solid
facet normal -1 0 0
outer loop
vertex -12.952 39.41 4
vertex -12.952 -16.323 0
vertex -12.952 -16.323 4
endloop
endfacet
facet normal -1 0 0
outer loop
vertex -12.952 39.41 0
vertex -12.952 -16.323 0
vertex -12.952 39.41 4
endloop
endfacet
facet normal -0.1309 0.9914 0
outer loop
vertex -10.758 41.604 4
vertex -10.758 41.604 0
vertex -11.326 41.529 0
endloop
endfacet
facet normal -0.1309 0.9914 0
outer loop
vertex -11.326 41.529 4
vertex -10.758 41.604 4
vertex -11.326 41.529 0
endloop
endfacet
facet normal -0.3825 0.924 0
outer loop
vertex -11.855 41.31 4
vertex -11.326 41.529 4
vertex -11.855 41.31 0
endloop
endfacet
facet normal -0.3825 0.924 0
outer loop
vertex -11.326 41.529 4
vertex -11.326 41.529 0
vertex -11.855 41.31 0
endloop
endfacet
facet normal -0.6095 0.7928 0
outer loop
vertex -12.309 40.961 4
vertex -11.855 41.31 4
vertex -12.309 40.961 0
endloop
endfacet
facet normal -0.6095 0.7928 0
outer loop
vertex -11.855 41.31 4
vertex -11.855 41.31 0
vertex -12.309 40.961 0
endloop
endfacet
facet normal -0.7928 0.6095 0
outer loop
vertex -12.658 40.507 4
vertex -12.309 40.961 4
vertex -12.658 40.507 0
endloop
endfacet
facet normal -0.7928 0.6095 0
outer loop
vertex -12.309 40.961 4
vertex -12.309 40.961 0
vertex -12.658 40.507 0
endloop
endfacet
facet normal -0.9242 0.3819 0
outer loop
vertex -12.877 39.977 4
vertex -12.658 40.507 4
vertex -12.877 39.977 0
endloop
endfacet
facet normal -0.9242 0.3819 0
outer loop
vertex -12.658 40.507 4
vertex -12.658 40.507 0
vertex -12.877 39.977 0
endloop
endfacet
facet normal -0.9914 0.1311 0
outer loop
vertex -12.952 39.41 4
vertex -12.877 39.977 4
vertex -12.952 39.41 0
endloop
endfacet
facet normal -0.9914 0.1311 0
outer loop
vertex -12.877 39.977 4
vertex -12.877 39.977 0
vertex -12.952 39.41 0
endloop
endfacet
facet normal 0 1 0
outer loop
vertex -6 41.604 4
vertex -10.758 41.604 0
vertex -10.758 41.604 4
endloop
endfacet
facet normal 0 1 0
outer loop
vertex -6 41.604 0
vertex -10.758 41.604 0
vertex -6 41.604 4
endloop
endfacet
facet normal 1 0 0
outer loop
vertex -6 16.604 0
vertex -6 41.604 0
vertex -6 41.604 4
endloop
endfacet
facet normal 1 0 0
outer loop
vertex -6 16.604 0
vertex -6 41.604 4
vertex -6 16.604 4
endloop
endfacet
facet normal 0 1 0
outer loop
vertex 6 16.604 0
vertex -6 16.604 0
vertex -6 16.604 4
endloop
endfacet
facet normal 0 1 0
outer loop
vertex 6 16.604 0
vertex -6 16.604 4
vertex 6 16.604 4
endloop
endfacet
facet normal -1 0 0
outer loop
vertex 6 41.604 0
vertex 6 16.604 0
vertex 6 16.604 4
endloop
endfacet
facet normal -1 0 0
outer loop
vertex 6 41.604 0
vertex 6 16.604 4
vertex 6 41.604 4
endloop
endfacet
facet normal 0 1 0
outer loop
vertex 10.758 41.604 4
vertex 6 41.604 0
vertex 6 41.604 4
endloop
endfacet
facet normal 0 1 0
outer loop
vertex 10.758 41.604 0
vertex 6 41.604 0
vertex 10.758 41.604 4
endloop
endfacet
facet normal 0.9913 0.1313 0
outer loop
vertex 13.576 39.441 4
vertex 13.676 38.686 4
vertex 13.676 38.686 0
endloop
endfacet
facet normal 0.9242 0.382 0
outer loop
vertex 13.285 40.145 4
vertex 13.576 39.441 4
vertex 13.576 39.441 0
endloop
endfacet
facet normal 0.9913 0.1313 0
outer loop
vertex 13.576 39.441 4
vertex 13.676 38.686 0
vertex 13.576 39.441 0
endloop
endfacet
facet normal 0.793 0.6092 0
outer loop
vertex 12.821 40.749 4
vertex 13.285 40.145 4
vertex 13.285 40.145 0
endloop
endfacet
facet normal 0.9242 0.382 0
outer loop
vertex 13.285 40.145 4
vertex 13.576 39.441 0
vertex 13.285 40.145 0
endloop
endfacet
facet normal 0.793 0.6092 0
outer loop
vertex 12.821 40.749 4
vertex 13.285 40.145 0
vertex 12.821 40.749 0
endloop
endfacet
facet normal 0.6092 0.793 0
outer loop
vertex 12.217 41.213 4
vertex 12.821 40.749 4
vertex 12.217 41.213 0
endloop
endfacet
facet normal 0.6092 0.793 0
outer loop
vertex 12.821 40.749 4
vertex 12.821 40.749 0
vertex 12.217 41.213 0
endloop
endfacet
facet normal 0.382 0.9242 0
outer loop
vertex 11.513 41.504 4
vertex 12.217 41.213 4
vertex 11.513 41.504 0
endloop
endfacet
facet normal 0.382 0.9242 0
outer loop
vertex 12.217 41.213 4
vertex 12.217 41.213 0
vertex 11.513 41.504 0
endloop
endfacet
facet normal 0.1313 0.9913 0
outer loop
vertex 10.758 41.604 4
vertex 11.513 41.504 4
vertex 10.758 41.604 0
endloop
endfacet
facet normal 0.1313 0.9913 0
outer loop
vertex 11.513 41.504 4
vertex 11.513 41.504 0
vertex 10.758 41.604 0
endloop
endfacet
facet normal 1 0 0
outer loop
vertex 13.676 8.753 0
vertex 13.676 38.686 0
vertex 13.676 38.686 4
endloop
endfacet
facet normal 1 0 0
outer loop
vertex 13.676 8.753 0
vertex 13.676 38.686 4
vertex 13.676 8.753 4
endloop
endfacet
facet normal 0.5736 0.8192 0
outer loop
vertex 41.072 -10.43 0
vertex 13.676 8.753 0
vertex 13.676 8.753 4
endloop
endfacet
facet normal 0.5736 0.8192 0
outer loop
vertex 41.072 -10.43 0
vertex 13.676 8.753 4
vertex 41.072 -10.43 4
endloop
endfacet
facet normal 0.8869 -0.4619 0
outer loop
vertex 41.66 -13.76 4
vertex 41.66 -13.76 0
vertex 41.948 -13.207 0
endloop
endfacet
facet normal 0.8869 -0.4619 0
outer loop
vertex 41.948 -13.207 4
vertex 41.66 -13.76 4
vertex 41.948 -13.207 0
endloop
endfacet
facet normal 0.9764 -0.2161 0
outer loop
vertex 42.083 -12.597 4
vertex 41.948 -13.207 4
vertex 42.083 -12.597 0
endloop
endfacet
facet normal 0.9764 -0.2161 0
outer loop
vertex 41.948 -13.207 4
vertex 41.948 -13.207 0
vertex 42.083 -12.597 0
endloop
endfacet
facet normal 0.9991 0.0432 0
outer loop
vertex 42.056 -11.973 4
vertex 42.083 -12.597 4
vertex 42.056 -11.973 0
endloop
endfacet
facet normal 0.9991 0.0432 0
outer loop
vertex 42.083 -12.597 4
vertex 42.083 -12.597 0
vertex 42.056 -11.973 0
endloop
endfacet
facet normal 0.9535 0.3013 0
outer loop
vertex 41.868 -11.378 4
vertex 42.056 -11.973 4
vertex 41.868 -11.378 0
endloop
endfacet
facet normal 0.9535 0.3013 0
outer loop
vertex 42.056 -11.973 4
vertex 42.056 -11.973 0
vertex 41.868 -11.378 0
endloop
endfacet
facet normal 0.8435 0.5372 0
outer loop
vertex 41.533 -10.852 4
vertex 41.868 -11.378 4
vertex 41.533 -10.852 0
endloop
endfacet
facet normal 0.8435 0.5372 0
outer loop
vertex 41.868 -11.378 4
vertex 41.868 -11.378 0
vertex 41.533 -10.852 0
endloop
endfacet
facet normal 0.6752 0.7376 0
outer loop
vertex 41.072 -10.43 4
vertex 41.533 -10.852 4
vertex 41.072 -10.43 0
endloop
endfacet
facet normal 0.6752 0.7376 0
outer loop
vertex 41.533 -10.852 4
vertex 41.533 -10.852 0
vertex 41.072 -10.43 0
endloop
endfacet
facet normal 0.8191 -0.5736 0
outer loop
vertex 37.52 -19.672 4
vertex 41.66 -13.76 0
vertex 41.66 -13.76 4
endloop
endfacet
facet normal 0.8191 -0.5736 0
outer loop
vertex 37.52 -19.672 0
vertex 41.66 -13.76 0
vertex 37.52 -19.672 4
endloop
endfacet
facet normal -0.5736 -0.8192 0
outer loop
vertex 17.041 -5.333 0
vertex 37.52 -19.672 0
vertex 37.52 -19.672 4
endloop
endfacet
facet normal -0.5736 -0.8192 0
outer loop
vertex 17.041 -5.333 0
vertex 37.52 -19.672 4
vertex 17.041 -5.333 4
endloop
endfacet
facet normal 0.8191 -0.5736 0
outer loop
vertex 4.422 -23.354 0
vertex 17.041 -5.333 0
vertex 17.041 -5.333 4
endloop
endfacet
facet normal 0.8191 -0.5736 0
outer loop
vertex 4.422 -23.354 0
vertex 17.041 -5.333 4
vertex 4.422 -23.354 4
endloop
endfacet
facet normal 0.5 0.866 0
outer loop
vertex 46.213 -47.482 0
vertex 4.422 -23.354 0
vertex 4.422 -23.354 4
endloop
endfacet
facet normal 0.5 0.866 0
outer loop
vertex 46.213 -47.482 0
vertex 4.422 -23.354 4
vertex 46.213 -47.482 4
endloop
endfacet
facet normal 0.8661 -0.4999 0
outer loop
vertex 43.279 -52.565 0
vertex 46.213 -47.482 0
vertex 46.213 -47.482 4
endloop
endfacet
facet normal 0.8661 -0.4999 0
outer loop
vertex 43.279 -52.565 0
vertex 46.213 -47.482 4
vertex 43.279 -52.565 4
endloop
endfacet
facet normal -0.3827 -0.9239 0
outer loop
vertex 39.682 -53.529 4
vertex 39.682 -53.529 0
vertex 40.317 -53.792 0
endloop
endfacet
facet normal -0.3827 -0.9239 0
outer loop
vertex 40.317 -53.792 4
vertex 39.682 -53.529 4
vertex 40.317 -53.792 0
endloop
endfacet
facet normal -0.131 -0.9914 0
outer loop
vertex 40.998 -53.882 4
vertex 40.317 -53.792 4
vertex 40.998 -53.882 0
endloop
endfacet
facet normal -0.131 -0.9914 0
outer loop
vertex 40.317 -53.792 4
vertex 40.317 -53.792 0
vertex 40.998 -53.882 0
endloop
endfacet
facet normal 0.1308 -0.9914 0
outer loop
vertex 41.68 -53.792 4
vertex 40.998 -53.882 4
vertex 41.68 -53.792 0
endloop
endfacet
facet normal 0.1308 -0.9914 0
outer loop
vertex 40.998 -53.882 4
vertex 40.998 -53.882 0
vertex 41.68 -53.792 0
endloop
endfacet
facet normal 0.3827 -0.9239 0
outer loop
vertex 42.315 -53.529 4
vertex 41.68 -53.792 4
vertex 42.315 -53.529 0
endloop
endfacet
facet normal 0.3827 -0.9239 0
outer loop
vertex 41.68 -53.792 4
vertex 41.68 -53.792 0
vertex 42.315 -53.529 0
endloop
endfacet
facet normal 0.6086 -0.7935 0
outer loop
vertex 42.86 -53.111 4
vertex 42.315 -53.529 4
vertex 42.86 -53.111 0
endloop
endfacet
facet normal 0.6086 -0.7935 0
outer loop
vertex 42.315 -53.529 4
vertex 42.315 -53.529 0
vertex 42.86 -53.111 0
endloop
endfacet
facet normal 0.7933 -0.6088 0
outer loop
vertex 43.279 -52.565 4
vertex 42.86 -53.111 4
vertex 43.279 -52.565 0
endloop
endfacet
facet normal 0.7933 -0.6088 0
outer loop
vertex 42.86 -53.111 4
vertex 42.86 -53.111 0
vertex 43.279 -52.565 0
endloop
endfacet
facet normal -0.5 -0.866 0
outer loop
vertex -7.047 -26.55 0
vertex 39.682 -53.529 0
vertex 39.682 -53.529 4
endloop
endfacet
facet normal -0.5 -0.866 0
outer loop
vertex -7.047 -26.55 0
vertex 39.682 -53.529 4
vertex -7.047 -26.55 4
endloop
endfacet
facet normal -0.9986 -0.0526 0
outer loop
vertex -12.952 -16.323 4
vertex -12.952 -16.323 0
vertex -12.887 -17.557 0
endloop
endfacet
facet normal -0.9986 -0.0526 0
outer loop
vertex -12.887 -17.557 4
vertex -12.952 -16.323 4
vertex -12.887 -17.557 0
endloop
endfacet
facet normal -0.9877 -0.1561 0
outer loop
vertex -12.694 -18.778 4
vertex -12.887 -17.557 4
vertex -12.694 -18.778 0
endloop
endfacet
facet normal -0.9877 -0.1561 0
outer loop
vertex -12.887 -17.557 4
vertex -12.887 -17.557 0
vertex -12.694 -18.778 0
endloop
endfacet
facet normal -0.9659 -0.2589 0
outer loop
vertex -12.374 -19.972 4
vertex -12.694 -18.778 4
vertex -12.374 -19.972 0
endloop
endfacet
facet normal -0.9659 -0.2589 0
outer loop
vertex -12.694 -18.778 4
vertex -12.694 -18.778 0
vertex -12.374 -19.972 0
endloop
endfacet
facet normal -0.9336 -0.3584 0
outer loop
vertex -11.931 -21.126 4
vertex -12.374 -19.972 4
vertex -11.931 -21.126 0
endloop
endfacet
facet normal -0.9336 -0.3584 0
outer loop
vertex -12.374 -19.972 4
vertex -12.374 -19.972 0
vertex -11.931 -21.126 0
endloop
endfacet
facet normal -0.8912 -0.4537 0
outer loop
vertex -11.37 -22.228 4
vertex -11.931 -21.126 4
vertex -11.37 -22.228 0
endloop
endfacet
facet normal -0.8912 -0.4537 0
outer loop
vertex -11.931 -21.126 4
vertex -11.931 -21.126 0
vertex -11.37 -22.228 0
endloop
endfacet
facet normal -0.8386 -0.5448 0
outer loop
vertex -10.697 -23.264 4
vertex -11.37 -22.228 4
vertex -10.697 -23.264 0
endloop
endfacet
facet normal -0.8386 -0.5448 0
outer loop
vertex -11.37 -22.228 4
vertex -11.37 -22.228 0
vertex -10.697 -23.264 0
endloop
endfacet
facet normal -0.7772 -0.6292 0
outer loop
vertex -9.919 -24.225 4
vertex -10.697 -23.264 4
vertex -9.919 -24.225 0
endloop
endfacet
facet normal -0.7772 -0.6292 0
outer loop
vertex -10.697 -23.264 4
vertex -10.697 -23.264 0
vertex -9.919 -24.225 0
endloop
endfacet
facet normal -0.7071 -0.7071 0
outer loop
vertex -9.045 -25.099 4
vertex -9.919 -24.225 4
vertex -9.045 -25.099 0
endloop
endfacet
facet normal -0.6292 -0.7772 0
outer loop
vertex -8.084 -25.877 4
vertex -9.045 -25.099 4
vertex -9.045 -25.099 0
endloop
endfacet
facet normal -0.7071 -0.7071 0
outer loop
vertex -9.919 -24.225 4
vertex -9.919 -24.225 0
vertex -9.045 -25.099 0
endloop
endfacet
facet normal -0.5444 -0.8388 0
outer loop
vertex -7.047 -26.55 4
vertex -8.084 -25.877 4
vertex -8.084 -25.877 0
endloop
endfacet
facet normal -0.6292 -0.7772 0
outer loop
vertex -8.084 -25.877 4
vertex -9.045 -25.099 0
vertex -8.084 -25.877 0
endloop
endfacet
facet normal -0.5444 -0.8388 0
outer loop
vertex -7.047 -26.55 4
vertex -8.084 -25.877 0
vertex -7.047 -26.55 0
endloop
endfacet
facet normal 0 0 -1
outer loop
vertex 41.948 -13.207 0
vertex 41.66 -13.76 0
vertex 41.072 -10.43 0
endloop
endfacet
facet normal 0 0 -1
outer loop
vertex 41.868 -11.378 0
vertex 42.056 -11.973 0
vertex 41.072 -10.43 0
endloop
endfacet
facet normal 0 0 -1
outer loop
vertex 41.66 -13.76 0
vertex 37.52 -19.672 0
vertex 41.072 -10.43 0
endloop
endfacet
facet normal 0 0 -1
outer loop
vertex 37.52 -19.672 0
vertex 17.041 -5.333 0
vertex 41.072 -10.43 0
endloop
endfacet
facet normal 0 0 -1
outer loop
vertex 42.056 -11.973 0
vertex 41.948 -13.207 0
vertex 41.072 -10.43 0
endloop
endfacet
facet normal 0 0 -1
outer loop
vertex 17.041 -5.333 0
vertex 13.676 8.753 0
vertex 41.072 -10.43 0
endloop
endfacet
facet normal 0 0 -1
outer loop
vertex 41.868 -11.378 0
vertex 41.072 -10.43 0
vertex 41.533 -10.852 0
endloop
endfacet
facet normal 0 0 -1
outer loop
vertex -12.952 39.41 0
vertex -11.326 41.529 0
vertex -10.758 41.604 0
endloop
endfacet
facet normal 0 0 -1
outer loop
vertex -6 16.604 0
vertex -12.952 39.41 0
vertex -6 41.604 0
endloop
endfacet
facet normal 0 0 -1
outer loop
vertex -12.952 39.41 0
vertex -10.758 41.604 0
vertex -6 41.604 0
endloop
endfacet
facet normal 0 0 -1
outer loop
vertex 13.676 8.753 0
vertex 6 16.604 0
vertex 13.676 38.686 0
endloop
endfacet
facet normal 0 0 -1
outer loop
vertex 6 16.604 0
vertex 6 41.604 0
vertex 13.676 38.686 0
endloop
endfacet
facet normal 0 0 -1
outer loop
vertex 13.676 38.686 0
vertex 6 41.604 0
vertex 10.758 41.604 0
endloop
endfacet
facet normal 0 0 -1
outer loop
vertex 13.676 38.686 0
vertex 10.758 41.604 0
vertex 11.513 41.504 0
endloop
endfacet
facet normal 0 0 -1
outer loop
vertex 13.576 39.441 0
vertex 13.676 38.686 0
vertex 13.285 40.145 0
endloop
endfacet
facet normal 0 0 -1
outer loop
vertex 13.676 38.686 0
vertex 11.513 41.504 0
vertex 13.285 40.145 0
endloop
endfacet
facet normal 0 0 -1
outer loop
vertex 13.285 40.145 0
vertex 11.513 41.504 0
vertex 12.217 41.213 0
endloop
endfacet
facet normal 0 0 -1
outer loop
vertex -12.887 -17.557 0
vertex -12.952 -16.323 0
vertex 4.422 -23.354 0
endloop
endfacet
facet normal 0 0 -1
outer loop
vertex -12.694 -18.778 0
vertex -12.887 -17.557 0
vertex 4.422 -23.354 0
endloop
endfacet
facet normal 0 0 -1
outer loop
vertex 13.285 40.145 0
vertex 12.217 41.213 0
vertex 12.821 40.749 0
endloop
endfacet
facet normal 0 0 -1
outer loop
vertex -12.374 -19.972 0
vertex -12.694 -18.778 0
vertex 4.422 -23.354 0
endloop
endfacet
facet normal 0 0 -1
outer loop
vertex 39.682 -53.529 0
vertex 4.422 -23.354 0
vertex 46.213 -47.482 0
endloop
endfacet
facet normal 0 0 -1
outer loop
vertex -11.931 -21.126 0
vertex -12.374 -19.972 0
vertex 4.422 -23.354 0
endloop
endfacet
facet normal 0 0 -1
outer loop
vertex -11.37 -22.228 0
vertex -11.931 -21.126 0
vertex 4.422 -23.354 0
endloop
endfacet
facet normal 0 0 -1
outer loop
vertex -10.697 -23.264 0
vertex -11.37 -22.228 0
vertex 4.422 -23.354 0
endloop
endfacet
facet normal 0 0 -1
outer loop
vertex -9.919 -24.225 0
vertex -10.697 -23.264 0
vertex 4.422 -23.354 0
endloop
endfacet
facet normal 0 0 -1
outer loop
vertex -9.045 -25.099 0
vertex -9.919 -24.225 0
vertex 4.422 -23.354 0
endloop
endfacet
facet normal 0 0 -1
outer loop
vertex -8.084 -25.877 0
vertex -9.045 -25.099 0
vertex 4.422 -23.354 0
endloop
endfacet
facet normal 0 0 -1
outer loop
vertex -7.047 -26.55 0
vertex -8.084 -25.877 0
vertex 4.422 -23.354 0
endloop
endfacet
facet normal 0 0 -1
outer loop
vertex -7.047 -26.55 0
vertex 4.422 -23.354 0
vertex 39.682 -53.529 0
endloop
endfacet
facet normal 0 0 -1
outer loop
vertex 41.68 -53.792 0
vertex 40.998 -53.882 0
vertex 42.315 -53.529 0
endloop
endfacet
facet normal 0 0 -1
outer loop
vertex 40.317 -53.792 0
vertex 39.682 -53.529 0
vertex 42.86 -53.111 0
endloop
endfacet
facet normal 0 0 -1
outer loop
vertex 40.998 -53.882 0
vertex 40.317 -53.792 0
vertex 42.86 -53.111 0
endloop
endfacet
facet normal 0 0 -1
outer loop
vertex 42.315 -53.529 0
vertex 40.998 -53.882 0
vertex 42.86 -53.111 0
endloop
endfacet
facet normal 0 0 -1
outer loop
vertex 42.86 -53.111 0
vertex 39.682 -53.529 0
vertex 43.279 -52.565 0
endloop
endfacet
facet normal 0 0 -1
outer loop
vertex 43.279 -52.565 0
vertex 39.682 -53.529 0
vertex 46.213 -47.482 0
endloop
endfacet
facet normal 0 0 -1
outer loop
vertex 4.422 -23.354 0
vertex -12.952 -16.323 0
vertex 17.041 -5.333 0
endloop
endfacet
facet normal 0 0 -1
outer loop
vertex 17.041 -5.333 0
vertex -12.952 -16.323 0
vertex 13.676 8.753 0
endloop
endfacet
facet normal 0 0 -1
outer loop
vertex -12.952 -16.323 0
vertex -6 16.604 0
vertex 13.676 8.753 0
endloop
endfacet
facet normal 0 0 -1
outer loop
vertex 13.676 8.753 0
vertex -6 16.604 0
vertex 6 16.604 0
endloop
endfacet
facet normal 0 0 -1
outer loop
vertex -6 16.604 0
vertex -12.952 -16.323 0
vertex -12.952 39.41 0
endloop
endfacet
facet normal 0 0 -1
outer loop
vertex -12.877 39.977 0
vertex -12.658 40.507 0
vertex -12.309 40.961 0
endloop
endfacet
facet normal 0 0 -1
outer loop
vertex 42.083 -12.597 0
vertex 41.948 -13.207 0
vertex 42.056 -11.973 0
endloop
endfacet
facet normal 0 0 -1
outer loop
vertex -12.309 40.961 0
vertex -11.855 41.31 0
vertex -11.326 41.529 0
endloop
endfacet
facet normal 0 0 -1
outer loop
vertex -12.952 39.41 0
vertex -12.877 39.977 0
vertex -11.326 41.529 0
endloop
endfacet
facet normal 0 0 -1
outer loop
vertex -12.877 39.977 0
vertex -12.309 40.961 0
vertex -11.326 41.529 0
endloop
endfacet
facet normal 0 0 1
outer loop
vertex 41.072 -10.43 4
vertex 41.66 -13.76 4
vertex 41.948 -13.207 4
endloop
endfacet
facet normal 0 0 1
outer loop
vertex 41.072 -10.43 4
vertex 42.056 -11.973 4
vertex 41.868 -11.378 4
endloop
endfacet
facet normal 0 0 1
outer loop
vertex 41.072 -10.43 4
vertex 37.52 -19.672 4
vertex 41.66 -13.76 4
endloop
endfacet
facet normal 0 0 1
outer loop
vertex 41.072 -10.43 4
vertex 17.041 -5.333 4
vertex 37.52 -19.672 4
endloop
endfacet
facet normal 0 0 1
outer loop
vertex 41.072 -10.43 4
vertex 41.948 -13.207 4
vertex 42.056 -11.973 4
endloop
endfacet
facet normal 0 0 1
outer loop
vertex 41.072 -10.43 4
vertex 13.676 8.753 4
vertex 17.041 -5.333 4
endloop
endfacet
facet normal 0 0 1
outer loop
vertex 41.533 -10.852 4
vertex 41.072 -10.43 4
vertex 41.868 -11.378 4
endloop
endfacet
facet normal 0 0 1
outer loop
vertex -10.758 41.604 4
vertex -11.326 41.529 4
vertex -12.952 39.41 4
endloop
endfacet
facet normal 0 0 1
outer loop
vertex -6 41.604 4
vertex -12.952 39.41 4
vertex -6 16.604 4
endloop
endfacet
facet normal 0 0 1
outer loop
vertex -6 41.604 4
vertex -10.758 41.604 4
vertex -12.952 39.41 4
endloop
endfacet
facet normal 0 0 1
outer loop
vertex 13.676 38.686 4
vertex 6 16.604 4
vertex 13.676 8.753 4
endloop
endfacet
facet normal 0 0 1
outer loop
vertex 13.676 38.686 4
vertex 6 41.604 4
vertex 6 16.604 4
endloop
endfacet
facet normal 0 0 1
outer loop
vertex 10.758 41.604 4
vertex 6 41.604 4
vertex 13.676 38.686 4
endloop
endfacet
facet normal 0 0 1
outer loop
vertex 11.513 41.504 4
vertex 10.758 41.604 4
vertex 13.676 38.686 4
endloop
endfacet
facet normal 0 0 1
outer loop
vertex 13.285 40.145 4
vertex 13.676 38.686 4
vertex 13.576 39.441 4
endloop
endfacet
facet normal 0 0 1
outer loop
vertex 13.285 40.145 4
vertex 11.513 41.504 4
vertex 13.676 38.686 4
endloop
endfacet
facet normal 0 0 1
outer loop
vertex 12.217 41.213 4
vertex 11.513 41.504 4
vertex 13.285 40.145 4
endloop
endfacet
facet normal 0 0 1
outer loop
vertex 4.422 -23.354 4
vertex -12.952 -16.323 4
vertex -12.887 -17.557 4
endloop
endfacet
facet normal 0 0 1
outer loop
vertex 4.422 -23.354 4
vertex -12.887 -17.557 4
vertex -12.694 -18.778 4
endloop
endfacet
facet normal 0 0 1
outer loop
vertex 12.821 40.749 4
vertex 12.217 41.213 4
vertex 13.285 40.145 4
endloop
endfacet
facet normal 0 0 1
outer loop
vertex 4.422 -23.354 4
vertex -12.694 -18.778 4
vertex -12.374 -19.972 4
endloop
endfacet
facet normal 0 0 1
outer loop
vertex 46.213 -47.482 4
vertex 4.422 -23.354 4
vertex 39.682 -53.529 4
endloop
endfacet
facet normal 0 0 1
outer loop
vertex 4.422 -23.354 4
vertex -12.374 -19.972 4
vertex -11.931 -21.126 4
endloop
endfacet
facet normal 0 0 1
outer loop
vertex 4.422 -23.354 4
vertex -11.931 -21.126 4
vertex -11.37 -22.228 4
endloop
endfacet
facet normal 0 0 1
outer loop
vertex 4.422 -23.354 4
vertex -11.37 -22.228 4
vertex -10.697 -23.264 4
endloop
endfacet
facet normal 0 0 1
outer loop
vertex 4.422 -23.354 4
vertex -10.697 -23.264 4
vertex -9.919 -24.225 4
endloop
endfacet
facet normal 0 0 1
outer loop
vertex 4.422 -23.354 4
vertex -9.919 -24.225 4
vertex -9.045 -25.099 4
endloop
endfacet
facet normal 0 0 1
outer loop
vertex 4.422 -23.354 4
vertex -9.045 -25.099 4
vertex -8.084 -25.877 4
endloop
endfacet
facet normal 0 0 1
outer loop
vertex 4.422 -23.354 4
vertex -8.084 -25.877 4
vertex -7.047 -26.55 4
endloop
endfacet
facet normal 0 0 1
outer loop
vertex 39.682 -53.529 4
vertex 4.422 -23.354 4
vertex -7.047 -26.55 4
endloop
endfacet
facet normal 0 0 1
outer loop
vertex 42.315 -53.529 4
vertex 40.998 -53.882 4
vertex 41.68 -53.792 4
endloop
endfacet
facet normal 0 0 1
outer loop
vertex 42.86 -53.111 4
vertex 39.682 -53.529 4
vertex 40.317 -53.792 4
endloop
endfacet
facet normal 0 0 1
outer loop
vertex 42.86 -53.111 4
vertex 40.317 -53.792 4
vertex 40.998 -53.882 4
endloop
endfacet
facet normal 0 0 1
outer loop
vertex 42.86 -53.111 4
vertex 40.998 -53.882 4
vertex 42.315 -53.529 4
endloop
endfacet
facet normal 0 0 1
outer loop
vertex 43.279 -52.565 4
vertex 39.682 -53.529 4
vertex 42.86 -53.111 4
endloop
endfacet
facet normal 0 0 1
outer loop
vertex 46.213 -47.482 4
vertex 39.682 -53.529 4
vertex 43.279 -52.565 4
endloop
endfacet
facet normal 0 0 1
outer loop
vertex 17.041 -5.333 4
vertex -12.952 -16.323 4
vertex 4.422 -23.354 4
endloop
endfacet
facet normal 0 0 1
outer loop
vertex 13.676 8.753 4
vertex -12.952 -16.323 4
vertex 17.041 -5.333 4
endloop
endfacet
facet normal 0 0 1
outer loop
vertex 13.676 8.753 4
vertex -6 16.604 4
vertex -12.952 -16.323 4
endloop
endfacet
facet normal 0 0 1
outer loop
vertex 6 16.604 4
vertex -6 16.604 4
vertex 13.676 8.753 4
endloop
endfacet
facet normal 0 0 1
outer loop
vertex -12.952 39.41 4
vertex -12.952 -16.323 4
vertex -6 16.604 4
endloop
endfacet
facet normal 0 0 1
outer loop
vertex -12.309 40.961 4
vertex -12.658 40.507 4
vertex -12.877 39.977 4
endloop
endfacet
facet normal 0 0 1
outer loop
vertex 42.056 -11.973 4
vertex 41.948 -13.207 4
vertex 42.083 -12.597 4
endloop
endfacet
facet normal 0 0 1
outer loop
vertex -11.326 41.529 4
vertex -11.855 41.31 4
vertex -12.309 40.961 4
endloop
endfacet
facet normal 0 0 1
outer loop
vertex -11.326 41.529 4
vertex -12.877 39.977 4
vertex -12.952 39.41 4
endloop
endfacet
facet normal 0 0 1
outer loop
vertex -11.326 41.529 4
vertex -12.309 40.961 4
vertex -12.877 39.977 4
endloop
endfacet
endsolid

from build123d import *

# Parameters (mm, degrees)
PAD_DEPTH = 4


with BuildPart() as part:
    # Sketch → Pad (new body)
    with BuildSketch(Plane.XY):
        with BuildLine():
            Line((-10.75805, 41.603632), (-6, 41.603632))
            Line((-6, 41.603632), (-6, 16.603632))
            Line((-6, 16.603632), (6, 16.603632))
            Line((6, 16.603632), (6, 41.603632))
            Line((6, 41.603632), (10.75805, 41.603632))
            ThreePointArc((13.675637, 38.686046), (12.821096, 40.749091), (10.75805, 41.603632))
            Line((13.675637, 38.686046), (13.675637, 8.753459))
            Line((13.675637, 8.753459), (41.072293, -10.429886))
            ThreePointArc((41.659537, -13.76031), (42.055668, -11.973476), (41.072293, -10.429886))
            Line((41.659537, -13.76031), (37.519892, -19.672335))
            Line((37.519892, -19.672335), (17.041091, -5.332924))
            Line((17.041091, -5.332924), (4.422409, -23.354269))
            Line((4.422409, -23.354269), (46.213473, -47.482351))
            Line((46.213473, -47.482351), (43.278864, -52.565244))
            ThreePointArc((39.681503, -53.529154), (41.679816, -53.792237), (43.278864, -52.565244))
            Line((39.681503, -53.529154), (-7.047129, -26.550365))
            ThreePointArc((-12.952081, -16.322689), (-11.369854, -22.227641), (-7.047129, -26.550365))
            Line((-12.952081, -16.322689), (-12.952081, 39.409602))
            ThreePointArc((-10.75805, 41.603632), (-12.309464, 40.961015), (-12.952081, 39.409602))
        make_face()
    extrude(amount=PAD_DEPTH)


solid = part.part
